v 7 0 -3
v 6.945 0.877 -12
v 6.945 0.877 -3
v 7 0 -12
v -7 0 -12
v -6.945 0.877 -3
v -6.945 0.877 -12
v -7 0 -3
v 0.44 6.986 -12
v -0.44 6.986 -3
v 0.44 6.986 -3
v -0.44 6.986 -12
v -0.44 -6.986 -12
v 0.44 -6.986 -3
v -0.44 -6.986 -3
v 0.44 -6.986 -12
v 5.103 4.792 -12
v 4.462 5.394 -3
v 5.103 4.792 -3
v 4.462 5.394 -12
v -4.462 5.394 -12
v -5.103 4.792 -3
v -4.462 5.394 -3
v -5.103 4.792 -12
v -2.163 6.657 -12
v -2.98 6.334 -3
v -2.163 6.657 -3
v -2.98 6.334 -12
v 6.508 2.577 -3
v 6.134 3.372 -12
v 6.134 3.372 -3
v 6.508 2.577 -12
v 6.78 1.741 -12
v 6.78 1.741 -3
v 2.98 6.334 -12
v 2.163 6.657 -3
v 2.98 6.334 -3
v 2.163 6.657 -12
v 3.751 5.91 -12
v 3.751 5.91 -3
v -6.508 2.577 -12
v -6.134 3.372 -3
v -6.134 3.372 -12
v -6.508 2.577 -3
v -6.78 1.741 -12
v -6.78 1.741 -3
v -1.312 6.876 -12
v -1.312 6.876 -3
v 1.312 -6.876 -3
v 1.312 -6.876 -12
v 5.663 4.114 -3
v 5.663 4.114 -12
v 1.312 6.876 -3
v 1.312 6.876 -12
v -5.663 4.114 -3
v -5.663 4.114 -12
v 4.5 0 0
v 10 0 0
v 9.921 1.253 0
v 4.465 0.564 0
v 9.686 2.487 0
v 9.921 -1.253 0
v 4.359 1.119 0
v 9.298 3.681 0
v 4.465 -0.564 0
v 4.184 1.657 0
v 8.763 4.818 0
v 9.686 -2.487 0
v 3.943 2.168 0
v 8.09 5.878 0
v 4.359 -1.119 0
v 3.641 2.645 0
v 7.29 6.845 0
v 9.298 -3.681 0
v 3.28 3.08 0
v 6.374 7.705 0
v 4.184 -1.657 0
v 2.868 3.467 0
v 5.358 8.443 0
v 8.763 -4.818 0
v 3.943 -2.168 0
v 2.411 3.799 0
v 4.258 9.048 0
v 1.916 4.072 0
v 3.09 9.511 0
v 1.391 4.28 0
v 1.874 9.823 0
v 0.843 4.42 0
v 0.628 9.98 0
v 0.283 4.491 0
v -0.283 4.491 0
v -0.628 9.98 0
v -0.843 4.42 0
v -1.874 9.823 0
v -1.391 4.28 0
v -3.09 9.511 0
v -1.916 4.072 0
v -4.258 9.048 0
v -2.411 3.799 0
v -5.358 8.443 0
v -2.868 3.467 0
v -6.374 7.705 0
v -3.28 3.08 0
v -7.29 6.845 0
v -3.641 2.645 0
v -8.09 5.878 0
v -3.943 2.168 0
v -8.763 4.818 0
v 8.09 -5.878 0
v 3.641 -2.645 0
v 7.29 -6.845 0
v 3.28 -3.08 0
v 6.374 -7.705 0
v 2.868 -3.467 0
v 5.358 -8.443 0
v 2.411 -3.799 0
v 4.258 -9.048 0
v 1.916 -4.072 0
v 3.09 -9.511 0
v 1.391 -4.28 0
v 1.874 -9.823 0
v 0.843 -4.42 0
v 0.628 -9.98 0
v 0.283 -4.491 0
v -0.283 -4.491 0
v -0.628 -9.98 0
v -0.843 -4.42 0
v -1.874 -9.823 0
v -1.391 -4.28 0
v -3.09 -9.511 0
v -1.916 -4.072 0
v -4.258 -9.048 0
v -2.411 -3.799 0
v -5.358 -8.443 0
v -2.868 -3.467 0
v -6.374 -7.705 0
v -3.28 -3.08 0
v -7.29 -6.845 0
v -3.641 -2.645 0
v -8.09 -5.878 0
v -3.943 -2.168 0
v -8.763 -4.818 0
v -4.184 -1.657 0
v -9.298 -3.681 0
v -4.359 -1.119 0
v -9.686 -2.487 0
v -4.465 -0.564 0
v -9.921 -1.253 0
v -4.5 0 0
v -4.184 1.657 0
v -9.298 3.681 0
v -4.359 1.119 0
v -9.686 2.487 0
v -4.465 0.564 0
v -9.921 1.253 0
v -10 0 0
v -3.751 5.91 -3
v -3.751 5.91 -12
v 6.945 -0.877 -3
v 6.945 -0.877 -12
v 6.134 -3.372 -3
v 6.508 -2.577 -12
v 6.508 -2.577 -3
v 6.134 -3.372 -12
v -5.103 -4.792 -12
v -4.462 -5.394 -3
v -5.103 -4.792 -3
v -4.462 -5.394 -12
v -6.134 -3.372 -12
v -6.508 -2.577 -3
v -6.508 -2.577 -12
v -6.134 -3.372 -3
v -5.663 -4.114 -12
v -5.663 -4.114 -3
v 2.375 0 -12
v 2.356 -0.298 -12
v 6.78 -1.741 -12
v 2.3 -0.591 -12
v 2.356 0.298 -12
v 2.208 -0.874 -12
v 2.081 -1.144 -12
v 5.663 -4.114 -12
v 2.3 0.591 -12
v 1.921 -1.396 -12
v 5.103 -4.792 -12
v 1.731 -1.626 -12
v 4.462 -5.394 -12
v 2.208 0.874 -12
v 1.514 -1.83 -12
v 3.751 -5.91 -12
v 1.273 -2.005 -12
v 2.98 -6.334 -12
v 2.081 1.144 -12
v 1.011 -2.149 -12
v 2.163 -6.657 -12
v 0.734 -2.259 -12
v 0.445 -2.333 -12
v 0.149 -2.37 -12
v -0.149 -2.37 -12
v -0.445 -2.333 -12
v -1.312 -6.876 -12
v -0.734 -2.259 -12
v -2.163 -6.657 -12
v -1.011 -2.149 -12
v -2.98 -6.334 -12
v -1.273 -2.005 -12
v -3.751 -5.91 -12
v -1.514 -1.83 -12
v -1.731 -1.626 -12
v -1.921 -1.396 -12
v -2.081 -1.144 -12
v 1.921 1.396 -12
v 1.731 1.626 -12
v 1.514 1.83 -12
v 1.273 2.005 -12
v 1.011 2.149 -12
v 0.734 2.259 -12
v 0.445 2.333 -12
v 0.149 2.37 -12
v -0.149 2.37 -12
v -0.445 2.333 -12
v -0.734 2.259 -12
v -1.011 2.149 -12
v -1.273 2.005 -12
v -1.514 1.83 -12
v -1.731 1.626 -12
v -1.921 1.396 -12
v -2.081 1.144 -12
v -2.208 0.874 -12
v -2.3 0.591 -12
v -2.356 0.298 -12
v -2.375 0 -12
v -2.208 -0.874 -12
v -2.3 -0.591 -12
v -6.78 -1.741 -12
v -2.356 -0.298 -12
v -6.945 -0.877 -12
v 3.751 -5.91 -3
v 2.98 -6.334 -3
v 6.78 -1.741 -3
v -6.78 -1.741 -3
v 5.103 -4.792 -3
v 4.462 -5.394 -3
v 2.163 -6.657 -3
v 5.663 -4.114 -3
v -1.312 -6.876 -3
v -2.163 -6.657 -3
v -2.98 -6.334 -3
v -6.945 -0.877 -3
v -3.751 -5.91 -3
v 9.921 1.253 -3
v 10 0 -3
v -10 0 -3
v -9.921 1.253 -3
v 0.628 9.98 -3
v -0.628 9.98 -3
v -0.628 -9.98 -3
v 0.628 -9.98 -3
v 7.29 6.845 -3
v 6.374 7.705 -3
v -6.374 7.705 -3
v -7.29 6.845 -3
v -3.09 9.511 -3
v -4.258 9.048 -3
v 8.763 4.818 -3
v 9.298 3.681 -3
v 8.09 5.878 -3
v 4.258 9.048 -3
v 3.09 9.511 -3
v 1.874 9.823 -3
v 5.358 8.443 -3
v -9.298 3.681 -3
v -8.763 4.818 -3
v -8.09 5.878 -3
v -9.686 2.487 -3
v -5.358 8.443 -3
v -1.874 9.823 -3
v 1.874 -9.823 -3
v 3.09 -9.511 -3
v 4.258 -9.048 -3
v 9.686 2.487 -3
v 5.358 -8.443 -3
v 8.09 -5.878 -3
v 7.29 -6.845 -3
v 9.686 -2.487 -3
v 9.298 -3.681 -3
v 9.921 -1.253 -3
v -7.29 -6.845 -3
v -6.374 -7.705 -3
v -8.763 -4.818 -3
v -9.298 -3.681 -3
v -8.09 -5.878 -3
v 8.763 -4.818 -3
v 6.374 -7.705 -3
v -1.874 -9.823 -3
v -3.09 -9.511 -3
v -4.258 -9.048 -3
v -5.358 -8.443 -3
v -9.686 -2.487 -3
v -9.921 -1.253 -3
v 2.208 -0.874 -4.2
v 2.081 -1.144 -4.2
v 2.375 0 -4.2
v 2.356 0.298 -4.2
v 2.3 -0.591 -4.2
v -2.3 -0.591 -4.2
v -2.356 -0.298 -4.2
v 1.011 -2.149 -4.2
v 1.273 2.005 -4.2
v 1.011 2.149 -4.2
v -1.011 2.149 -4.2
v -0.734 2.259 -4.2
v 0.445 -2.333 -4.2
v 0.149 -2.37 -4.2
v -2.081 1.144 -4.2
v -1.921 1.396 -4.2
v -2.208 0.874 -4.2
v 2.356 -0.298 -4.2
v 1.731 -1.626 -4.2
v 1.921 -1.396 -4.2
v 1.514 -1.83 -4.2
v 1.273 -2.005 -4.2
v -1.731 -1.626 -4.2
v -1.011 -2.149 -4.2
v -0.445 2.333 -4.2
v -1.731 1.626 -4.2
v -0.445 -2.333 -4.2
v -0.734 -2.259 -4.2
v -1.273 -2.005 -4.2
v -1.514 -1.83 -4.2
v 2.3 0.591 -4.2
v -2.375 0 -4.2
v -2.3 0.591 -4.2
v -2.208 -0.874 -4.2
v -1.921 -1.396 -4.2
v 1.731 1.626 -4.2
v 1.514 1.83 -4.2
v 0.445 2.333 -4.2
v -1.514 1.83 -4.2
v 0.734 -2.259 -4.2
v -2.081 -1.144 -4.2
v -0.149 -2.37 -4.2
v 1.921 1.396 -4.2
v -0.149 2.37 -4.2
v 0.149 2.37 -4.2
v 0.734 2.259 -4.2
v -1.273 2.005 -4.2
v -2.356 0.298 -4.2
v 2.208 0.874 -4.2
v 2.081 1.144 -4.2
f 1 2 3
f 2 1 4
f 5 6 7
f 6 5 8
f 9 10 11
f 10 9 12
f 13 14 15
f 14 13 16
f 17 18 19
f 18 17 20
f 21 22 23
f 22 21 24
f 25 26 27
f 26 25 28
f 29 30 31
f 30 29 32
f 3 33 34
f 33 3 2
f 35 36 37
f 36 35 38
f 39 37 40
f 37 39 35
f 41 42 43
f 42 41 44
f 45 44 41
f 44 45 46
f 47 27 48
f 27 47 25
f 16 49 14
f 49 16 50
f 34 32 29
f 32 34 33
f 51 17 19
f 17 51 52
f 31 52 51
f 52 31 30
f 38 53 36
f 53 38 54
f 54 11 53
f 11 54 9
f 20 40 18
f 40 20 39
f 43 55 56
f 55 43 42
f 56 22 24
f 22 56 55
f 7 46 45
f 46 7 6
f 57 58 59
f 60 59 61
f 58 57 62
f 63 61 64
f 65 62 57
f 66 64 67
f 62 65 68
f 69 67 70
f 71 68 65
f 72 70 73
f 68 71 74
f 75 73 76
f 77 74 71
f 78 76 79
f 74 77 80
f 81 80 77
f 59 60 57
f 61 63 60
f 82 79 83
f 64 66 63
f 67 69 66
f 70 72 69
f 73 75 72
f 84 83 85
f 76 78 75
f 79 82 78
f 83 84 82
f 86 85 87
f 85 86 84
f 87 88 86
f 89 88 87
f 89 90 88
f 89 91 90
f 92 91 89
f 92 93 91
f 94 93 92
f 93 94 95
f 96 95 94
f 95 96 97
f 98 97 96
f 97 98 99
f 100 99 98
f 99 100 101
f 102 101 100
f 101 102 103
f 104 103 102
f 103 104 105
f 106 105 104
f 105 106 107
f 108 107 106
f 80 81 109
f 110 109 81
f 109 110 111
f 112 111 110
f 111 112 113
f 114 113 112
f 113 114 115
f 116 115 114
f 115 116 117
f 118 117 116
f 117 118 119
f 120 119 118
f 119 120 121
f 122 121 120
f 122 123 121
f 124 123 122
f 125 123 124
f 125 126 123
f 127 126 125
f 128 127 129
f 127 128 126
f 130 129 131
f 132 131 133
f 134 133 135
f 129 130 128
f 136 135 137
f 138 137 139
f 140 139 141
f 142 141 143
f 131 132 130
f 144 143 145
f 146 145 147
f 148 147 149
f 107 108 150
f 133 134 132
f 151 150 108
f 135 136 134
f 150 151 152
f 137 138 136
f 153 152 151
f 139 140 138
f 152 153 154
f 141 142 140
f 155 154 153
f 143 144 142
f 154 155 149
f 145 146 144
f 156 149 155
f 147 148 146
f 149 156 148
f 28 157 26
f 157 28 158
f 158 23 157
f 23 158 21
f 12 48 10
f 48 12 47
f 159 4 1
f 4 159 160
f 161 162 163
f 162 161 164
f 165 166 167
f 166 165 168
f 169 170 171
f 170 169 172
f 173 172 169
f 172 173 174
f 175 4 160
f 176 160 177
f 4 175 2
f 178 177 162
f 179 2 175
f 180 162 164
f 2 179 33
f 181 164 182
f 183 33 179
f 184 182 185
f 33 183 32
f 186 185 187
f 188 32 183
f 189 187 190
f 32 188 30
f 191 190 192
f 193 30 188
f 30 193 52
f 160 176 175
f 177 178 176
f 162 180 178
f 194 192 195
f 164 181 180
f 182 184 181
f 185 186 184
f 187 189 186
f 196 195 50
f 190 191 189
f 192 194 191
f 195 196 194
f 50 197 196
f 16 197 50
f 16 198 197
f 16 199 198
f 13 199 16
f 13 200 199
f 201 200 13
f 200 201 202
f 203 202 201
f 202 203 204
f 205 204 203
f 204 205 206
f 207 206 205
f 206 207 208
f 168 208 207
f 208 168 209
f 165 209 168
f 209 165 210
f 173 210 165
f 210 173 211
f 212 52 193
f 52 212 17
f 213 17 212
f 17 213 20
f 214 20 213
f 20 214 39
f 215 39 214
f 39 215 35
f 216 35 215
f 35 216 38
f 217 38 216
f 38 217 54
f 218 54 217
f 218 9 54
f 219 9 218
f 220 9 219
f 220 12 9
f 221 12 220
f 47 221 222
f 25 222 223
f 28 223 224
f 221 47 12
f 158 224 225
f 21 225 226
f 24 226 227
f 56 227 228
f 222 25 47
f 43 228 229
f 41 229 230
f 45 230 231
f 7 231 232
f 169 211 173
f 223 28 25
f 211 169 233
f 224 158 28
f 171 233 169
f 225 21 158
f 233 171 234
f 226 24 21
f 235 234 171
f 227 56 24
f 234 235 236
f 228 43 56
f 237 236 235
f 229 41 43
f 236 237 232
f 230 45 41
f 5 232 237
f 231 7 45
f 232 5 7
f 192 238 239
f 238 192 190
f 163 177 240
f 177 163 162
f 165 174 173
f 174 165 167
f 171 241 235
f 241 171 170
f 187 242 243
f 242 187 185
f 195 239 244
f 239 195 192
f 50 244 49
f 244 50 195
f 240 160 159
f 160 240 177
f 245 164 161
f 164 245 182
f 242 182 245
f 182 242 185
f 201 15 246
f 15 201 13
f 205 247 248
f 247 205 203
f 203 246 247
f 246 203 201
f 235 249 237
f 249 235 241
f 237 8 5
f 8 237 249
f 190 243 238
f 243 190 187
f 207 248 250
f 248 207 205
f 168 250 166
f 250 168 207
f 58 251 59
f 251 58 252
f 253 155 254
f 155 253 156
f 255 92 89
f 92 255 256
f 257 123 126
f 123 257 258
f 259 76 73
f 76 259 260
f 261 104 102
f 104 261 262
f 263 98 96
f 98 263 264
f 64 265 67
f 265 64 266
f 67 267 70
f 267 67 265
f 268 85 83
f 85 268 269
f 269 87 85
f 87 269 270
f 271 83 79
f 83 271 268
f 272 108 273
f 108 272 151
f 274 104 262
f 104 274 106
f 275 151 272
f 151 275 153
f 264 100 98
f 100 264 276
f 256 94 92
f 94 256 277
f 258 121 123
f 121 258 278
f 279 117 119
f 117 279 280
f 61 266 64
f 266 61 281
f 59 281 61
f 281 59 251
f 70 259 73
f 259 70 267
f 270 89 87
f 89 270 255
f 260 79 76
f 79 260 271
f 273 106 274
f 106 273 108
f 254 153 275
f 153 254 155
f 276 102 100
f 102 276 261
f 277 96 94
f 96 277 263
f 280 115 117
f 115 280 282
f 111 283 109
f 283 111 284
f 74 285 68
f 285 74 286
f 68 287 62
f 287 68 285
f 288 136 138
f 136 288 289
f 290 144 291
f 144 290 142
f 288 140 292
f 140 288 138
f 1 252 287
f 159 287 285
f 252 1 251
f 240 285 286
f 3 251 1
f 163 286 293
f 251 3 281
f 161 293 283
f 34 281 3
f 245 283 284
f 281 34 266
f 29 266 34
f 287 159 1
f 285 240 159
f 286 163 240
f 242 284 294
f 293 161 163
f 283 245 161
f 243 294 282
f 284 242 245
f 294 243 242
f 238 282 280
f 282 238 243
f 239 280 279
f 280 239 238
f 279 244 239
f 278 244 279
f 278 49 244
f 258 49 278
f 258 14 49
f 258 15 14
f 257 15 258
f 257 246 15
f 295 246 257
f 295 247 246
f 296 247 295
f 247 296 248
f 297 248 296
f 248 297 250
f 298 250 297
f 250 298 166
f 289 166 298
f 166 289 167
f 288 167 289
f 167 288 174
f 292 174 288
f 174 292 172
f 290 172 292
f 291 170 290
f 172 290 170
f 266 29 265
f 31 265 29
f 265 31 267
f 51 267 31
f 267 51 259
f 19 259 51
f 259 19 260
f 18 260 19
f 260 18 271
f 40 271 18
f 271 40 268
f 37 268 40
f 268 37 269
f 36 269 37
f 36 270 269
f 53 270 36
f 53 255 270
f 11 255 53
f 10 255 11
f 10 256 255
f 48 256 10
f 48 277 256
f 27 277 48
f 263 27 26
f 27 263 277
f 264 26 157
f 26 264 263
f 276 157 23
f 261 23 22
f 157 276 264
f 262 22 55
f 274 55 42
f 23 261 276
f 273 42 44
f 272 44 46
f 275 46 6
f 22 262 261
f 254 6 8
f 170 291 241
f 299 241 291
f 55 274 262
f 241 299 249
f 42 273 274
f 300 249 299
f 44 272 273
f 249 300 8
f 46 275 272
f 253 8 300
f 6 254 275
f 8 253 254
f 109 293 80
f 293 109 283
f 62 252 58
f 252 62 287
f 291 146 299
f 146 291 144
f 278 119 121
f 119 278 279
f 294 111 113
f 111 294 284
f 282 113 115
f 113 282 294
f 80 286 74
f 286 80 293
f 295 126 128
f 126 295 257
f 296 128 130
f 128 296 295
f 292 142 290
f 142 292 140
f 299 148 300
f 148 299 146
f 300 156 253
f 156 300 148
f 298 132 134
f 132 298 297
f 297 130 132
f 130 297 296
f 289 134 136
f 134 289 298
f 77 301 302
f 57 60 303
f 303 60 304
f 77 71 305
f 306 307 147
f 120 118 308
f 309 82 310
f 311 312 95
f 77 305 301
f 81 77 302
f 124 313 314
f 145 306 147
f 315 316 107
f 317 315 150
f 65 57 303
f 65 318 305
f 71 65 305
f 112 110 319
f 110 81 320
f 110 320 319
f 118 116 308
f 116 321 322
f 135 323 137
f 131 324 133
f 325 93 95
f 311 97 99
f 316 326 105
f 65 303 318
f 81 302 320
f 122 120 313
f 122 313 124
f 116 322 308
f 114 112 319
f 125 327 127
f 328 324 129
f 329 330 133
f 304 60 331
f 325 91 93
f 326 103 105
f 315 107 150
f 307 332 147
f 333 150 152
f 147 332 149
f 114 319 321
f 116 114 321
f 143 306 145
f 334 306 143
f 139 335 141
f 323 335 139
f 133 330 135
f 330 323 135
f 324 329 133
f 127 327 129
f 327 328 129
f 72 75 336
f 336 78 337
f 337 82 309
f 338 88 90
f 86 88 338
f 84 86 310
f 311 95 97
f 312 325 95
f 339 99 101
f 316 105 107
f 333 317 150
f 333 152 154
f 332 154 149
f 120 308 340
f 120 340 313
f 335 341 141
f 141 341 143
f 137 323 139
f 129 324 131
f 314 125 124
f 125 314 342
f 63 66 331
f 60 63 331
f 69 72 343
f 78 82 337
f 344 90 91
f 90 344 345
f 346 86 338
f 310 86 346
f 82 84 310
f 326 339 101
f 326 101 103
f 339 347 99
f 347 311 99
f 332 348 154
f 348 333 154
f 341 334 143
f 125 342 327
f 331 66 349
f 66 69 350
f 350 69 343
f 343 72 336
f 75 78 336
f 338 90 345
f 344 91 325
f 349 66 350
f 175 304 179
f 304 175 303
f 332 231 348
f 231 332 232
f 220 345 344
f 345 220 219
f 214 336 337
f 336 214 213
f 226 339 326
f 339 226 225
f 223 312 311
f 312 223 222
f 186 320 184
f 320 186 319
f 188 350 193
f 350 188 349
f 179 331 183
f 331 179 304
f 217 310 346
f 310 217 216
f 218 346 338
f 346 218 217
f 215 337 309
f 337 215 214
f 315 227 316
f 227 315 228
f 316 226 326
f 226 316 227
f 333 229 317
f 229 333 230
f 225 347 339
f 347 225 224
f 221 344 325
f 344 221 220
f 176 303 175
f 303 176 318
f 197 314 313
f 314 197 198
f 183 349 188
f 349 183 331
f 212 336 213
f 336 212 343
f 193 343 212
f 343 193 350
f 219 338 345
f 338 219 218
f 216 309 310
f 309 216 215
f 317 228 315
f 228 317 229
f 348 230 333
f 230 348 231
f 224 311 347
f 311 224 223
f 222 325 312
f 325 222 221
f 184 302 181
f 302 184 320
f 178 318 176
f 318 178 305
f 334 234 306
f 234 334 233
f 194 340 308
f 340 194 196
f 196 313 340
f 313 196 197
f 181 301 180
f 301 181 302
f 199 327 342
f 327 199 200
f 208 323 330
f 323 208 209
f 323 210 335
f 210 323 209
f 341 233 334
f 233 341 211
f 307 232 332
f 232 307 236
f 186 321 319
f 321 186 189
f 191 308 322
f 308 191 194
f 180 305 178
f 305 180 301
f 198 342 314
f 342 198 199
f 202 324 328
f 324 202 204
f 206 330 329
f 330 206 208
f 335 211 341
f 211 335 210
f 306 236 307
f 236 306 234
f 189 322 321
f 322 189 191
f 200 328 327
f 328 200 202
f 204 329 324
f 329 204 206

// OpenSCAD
$fn = 50;


difference() {
	union() {
		translate(v = [0, 0, -12.0000000000]) {
			cylinder(h = 12, r = 7.0000000000);
		}
		translate(v = [0, 0, -3.0000000000]) {
			cylinder(h = 3, r = 10.0000000000);
		}
	}
	union() {
		translate(v = [0, 0, 0]) {
			rotate(a = [0, 0, 0]) {
				difference() {
					union() {
						#translate(v = [0, 0, -12.0000000000]) {
							cylinder(h = 12, r = 2.2500000000);
						}
						#translate(v = [0, 0, -4.2000000000]) {
							cylinder(h = 4.2000000000, r = 7.0000000000, r1 = 2.3750000000, r2 = 4.5000000000);
						}
						#translate(v = [0, 0, -12.0000000000]) {
							cylinder(h = 12, r = 2.3750000000);
						}
						#translate(v = [0, 0, -12.0000000000]) {
							cylinder(h = 12, r = 2.2500000000);
						}
					}
					union();
				}
			}
		}
	}
}
